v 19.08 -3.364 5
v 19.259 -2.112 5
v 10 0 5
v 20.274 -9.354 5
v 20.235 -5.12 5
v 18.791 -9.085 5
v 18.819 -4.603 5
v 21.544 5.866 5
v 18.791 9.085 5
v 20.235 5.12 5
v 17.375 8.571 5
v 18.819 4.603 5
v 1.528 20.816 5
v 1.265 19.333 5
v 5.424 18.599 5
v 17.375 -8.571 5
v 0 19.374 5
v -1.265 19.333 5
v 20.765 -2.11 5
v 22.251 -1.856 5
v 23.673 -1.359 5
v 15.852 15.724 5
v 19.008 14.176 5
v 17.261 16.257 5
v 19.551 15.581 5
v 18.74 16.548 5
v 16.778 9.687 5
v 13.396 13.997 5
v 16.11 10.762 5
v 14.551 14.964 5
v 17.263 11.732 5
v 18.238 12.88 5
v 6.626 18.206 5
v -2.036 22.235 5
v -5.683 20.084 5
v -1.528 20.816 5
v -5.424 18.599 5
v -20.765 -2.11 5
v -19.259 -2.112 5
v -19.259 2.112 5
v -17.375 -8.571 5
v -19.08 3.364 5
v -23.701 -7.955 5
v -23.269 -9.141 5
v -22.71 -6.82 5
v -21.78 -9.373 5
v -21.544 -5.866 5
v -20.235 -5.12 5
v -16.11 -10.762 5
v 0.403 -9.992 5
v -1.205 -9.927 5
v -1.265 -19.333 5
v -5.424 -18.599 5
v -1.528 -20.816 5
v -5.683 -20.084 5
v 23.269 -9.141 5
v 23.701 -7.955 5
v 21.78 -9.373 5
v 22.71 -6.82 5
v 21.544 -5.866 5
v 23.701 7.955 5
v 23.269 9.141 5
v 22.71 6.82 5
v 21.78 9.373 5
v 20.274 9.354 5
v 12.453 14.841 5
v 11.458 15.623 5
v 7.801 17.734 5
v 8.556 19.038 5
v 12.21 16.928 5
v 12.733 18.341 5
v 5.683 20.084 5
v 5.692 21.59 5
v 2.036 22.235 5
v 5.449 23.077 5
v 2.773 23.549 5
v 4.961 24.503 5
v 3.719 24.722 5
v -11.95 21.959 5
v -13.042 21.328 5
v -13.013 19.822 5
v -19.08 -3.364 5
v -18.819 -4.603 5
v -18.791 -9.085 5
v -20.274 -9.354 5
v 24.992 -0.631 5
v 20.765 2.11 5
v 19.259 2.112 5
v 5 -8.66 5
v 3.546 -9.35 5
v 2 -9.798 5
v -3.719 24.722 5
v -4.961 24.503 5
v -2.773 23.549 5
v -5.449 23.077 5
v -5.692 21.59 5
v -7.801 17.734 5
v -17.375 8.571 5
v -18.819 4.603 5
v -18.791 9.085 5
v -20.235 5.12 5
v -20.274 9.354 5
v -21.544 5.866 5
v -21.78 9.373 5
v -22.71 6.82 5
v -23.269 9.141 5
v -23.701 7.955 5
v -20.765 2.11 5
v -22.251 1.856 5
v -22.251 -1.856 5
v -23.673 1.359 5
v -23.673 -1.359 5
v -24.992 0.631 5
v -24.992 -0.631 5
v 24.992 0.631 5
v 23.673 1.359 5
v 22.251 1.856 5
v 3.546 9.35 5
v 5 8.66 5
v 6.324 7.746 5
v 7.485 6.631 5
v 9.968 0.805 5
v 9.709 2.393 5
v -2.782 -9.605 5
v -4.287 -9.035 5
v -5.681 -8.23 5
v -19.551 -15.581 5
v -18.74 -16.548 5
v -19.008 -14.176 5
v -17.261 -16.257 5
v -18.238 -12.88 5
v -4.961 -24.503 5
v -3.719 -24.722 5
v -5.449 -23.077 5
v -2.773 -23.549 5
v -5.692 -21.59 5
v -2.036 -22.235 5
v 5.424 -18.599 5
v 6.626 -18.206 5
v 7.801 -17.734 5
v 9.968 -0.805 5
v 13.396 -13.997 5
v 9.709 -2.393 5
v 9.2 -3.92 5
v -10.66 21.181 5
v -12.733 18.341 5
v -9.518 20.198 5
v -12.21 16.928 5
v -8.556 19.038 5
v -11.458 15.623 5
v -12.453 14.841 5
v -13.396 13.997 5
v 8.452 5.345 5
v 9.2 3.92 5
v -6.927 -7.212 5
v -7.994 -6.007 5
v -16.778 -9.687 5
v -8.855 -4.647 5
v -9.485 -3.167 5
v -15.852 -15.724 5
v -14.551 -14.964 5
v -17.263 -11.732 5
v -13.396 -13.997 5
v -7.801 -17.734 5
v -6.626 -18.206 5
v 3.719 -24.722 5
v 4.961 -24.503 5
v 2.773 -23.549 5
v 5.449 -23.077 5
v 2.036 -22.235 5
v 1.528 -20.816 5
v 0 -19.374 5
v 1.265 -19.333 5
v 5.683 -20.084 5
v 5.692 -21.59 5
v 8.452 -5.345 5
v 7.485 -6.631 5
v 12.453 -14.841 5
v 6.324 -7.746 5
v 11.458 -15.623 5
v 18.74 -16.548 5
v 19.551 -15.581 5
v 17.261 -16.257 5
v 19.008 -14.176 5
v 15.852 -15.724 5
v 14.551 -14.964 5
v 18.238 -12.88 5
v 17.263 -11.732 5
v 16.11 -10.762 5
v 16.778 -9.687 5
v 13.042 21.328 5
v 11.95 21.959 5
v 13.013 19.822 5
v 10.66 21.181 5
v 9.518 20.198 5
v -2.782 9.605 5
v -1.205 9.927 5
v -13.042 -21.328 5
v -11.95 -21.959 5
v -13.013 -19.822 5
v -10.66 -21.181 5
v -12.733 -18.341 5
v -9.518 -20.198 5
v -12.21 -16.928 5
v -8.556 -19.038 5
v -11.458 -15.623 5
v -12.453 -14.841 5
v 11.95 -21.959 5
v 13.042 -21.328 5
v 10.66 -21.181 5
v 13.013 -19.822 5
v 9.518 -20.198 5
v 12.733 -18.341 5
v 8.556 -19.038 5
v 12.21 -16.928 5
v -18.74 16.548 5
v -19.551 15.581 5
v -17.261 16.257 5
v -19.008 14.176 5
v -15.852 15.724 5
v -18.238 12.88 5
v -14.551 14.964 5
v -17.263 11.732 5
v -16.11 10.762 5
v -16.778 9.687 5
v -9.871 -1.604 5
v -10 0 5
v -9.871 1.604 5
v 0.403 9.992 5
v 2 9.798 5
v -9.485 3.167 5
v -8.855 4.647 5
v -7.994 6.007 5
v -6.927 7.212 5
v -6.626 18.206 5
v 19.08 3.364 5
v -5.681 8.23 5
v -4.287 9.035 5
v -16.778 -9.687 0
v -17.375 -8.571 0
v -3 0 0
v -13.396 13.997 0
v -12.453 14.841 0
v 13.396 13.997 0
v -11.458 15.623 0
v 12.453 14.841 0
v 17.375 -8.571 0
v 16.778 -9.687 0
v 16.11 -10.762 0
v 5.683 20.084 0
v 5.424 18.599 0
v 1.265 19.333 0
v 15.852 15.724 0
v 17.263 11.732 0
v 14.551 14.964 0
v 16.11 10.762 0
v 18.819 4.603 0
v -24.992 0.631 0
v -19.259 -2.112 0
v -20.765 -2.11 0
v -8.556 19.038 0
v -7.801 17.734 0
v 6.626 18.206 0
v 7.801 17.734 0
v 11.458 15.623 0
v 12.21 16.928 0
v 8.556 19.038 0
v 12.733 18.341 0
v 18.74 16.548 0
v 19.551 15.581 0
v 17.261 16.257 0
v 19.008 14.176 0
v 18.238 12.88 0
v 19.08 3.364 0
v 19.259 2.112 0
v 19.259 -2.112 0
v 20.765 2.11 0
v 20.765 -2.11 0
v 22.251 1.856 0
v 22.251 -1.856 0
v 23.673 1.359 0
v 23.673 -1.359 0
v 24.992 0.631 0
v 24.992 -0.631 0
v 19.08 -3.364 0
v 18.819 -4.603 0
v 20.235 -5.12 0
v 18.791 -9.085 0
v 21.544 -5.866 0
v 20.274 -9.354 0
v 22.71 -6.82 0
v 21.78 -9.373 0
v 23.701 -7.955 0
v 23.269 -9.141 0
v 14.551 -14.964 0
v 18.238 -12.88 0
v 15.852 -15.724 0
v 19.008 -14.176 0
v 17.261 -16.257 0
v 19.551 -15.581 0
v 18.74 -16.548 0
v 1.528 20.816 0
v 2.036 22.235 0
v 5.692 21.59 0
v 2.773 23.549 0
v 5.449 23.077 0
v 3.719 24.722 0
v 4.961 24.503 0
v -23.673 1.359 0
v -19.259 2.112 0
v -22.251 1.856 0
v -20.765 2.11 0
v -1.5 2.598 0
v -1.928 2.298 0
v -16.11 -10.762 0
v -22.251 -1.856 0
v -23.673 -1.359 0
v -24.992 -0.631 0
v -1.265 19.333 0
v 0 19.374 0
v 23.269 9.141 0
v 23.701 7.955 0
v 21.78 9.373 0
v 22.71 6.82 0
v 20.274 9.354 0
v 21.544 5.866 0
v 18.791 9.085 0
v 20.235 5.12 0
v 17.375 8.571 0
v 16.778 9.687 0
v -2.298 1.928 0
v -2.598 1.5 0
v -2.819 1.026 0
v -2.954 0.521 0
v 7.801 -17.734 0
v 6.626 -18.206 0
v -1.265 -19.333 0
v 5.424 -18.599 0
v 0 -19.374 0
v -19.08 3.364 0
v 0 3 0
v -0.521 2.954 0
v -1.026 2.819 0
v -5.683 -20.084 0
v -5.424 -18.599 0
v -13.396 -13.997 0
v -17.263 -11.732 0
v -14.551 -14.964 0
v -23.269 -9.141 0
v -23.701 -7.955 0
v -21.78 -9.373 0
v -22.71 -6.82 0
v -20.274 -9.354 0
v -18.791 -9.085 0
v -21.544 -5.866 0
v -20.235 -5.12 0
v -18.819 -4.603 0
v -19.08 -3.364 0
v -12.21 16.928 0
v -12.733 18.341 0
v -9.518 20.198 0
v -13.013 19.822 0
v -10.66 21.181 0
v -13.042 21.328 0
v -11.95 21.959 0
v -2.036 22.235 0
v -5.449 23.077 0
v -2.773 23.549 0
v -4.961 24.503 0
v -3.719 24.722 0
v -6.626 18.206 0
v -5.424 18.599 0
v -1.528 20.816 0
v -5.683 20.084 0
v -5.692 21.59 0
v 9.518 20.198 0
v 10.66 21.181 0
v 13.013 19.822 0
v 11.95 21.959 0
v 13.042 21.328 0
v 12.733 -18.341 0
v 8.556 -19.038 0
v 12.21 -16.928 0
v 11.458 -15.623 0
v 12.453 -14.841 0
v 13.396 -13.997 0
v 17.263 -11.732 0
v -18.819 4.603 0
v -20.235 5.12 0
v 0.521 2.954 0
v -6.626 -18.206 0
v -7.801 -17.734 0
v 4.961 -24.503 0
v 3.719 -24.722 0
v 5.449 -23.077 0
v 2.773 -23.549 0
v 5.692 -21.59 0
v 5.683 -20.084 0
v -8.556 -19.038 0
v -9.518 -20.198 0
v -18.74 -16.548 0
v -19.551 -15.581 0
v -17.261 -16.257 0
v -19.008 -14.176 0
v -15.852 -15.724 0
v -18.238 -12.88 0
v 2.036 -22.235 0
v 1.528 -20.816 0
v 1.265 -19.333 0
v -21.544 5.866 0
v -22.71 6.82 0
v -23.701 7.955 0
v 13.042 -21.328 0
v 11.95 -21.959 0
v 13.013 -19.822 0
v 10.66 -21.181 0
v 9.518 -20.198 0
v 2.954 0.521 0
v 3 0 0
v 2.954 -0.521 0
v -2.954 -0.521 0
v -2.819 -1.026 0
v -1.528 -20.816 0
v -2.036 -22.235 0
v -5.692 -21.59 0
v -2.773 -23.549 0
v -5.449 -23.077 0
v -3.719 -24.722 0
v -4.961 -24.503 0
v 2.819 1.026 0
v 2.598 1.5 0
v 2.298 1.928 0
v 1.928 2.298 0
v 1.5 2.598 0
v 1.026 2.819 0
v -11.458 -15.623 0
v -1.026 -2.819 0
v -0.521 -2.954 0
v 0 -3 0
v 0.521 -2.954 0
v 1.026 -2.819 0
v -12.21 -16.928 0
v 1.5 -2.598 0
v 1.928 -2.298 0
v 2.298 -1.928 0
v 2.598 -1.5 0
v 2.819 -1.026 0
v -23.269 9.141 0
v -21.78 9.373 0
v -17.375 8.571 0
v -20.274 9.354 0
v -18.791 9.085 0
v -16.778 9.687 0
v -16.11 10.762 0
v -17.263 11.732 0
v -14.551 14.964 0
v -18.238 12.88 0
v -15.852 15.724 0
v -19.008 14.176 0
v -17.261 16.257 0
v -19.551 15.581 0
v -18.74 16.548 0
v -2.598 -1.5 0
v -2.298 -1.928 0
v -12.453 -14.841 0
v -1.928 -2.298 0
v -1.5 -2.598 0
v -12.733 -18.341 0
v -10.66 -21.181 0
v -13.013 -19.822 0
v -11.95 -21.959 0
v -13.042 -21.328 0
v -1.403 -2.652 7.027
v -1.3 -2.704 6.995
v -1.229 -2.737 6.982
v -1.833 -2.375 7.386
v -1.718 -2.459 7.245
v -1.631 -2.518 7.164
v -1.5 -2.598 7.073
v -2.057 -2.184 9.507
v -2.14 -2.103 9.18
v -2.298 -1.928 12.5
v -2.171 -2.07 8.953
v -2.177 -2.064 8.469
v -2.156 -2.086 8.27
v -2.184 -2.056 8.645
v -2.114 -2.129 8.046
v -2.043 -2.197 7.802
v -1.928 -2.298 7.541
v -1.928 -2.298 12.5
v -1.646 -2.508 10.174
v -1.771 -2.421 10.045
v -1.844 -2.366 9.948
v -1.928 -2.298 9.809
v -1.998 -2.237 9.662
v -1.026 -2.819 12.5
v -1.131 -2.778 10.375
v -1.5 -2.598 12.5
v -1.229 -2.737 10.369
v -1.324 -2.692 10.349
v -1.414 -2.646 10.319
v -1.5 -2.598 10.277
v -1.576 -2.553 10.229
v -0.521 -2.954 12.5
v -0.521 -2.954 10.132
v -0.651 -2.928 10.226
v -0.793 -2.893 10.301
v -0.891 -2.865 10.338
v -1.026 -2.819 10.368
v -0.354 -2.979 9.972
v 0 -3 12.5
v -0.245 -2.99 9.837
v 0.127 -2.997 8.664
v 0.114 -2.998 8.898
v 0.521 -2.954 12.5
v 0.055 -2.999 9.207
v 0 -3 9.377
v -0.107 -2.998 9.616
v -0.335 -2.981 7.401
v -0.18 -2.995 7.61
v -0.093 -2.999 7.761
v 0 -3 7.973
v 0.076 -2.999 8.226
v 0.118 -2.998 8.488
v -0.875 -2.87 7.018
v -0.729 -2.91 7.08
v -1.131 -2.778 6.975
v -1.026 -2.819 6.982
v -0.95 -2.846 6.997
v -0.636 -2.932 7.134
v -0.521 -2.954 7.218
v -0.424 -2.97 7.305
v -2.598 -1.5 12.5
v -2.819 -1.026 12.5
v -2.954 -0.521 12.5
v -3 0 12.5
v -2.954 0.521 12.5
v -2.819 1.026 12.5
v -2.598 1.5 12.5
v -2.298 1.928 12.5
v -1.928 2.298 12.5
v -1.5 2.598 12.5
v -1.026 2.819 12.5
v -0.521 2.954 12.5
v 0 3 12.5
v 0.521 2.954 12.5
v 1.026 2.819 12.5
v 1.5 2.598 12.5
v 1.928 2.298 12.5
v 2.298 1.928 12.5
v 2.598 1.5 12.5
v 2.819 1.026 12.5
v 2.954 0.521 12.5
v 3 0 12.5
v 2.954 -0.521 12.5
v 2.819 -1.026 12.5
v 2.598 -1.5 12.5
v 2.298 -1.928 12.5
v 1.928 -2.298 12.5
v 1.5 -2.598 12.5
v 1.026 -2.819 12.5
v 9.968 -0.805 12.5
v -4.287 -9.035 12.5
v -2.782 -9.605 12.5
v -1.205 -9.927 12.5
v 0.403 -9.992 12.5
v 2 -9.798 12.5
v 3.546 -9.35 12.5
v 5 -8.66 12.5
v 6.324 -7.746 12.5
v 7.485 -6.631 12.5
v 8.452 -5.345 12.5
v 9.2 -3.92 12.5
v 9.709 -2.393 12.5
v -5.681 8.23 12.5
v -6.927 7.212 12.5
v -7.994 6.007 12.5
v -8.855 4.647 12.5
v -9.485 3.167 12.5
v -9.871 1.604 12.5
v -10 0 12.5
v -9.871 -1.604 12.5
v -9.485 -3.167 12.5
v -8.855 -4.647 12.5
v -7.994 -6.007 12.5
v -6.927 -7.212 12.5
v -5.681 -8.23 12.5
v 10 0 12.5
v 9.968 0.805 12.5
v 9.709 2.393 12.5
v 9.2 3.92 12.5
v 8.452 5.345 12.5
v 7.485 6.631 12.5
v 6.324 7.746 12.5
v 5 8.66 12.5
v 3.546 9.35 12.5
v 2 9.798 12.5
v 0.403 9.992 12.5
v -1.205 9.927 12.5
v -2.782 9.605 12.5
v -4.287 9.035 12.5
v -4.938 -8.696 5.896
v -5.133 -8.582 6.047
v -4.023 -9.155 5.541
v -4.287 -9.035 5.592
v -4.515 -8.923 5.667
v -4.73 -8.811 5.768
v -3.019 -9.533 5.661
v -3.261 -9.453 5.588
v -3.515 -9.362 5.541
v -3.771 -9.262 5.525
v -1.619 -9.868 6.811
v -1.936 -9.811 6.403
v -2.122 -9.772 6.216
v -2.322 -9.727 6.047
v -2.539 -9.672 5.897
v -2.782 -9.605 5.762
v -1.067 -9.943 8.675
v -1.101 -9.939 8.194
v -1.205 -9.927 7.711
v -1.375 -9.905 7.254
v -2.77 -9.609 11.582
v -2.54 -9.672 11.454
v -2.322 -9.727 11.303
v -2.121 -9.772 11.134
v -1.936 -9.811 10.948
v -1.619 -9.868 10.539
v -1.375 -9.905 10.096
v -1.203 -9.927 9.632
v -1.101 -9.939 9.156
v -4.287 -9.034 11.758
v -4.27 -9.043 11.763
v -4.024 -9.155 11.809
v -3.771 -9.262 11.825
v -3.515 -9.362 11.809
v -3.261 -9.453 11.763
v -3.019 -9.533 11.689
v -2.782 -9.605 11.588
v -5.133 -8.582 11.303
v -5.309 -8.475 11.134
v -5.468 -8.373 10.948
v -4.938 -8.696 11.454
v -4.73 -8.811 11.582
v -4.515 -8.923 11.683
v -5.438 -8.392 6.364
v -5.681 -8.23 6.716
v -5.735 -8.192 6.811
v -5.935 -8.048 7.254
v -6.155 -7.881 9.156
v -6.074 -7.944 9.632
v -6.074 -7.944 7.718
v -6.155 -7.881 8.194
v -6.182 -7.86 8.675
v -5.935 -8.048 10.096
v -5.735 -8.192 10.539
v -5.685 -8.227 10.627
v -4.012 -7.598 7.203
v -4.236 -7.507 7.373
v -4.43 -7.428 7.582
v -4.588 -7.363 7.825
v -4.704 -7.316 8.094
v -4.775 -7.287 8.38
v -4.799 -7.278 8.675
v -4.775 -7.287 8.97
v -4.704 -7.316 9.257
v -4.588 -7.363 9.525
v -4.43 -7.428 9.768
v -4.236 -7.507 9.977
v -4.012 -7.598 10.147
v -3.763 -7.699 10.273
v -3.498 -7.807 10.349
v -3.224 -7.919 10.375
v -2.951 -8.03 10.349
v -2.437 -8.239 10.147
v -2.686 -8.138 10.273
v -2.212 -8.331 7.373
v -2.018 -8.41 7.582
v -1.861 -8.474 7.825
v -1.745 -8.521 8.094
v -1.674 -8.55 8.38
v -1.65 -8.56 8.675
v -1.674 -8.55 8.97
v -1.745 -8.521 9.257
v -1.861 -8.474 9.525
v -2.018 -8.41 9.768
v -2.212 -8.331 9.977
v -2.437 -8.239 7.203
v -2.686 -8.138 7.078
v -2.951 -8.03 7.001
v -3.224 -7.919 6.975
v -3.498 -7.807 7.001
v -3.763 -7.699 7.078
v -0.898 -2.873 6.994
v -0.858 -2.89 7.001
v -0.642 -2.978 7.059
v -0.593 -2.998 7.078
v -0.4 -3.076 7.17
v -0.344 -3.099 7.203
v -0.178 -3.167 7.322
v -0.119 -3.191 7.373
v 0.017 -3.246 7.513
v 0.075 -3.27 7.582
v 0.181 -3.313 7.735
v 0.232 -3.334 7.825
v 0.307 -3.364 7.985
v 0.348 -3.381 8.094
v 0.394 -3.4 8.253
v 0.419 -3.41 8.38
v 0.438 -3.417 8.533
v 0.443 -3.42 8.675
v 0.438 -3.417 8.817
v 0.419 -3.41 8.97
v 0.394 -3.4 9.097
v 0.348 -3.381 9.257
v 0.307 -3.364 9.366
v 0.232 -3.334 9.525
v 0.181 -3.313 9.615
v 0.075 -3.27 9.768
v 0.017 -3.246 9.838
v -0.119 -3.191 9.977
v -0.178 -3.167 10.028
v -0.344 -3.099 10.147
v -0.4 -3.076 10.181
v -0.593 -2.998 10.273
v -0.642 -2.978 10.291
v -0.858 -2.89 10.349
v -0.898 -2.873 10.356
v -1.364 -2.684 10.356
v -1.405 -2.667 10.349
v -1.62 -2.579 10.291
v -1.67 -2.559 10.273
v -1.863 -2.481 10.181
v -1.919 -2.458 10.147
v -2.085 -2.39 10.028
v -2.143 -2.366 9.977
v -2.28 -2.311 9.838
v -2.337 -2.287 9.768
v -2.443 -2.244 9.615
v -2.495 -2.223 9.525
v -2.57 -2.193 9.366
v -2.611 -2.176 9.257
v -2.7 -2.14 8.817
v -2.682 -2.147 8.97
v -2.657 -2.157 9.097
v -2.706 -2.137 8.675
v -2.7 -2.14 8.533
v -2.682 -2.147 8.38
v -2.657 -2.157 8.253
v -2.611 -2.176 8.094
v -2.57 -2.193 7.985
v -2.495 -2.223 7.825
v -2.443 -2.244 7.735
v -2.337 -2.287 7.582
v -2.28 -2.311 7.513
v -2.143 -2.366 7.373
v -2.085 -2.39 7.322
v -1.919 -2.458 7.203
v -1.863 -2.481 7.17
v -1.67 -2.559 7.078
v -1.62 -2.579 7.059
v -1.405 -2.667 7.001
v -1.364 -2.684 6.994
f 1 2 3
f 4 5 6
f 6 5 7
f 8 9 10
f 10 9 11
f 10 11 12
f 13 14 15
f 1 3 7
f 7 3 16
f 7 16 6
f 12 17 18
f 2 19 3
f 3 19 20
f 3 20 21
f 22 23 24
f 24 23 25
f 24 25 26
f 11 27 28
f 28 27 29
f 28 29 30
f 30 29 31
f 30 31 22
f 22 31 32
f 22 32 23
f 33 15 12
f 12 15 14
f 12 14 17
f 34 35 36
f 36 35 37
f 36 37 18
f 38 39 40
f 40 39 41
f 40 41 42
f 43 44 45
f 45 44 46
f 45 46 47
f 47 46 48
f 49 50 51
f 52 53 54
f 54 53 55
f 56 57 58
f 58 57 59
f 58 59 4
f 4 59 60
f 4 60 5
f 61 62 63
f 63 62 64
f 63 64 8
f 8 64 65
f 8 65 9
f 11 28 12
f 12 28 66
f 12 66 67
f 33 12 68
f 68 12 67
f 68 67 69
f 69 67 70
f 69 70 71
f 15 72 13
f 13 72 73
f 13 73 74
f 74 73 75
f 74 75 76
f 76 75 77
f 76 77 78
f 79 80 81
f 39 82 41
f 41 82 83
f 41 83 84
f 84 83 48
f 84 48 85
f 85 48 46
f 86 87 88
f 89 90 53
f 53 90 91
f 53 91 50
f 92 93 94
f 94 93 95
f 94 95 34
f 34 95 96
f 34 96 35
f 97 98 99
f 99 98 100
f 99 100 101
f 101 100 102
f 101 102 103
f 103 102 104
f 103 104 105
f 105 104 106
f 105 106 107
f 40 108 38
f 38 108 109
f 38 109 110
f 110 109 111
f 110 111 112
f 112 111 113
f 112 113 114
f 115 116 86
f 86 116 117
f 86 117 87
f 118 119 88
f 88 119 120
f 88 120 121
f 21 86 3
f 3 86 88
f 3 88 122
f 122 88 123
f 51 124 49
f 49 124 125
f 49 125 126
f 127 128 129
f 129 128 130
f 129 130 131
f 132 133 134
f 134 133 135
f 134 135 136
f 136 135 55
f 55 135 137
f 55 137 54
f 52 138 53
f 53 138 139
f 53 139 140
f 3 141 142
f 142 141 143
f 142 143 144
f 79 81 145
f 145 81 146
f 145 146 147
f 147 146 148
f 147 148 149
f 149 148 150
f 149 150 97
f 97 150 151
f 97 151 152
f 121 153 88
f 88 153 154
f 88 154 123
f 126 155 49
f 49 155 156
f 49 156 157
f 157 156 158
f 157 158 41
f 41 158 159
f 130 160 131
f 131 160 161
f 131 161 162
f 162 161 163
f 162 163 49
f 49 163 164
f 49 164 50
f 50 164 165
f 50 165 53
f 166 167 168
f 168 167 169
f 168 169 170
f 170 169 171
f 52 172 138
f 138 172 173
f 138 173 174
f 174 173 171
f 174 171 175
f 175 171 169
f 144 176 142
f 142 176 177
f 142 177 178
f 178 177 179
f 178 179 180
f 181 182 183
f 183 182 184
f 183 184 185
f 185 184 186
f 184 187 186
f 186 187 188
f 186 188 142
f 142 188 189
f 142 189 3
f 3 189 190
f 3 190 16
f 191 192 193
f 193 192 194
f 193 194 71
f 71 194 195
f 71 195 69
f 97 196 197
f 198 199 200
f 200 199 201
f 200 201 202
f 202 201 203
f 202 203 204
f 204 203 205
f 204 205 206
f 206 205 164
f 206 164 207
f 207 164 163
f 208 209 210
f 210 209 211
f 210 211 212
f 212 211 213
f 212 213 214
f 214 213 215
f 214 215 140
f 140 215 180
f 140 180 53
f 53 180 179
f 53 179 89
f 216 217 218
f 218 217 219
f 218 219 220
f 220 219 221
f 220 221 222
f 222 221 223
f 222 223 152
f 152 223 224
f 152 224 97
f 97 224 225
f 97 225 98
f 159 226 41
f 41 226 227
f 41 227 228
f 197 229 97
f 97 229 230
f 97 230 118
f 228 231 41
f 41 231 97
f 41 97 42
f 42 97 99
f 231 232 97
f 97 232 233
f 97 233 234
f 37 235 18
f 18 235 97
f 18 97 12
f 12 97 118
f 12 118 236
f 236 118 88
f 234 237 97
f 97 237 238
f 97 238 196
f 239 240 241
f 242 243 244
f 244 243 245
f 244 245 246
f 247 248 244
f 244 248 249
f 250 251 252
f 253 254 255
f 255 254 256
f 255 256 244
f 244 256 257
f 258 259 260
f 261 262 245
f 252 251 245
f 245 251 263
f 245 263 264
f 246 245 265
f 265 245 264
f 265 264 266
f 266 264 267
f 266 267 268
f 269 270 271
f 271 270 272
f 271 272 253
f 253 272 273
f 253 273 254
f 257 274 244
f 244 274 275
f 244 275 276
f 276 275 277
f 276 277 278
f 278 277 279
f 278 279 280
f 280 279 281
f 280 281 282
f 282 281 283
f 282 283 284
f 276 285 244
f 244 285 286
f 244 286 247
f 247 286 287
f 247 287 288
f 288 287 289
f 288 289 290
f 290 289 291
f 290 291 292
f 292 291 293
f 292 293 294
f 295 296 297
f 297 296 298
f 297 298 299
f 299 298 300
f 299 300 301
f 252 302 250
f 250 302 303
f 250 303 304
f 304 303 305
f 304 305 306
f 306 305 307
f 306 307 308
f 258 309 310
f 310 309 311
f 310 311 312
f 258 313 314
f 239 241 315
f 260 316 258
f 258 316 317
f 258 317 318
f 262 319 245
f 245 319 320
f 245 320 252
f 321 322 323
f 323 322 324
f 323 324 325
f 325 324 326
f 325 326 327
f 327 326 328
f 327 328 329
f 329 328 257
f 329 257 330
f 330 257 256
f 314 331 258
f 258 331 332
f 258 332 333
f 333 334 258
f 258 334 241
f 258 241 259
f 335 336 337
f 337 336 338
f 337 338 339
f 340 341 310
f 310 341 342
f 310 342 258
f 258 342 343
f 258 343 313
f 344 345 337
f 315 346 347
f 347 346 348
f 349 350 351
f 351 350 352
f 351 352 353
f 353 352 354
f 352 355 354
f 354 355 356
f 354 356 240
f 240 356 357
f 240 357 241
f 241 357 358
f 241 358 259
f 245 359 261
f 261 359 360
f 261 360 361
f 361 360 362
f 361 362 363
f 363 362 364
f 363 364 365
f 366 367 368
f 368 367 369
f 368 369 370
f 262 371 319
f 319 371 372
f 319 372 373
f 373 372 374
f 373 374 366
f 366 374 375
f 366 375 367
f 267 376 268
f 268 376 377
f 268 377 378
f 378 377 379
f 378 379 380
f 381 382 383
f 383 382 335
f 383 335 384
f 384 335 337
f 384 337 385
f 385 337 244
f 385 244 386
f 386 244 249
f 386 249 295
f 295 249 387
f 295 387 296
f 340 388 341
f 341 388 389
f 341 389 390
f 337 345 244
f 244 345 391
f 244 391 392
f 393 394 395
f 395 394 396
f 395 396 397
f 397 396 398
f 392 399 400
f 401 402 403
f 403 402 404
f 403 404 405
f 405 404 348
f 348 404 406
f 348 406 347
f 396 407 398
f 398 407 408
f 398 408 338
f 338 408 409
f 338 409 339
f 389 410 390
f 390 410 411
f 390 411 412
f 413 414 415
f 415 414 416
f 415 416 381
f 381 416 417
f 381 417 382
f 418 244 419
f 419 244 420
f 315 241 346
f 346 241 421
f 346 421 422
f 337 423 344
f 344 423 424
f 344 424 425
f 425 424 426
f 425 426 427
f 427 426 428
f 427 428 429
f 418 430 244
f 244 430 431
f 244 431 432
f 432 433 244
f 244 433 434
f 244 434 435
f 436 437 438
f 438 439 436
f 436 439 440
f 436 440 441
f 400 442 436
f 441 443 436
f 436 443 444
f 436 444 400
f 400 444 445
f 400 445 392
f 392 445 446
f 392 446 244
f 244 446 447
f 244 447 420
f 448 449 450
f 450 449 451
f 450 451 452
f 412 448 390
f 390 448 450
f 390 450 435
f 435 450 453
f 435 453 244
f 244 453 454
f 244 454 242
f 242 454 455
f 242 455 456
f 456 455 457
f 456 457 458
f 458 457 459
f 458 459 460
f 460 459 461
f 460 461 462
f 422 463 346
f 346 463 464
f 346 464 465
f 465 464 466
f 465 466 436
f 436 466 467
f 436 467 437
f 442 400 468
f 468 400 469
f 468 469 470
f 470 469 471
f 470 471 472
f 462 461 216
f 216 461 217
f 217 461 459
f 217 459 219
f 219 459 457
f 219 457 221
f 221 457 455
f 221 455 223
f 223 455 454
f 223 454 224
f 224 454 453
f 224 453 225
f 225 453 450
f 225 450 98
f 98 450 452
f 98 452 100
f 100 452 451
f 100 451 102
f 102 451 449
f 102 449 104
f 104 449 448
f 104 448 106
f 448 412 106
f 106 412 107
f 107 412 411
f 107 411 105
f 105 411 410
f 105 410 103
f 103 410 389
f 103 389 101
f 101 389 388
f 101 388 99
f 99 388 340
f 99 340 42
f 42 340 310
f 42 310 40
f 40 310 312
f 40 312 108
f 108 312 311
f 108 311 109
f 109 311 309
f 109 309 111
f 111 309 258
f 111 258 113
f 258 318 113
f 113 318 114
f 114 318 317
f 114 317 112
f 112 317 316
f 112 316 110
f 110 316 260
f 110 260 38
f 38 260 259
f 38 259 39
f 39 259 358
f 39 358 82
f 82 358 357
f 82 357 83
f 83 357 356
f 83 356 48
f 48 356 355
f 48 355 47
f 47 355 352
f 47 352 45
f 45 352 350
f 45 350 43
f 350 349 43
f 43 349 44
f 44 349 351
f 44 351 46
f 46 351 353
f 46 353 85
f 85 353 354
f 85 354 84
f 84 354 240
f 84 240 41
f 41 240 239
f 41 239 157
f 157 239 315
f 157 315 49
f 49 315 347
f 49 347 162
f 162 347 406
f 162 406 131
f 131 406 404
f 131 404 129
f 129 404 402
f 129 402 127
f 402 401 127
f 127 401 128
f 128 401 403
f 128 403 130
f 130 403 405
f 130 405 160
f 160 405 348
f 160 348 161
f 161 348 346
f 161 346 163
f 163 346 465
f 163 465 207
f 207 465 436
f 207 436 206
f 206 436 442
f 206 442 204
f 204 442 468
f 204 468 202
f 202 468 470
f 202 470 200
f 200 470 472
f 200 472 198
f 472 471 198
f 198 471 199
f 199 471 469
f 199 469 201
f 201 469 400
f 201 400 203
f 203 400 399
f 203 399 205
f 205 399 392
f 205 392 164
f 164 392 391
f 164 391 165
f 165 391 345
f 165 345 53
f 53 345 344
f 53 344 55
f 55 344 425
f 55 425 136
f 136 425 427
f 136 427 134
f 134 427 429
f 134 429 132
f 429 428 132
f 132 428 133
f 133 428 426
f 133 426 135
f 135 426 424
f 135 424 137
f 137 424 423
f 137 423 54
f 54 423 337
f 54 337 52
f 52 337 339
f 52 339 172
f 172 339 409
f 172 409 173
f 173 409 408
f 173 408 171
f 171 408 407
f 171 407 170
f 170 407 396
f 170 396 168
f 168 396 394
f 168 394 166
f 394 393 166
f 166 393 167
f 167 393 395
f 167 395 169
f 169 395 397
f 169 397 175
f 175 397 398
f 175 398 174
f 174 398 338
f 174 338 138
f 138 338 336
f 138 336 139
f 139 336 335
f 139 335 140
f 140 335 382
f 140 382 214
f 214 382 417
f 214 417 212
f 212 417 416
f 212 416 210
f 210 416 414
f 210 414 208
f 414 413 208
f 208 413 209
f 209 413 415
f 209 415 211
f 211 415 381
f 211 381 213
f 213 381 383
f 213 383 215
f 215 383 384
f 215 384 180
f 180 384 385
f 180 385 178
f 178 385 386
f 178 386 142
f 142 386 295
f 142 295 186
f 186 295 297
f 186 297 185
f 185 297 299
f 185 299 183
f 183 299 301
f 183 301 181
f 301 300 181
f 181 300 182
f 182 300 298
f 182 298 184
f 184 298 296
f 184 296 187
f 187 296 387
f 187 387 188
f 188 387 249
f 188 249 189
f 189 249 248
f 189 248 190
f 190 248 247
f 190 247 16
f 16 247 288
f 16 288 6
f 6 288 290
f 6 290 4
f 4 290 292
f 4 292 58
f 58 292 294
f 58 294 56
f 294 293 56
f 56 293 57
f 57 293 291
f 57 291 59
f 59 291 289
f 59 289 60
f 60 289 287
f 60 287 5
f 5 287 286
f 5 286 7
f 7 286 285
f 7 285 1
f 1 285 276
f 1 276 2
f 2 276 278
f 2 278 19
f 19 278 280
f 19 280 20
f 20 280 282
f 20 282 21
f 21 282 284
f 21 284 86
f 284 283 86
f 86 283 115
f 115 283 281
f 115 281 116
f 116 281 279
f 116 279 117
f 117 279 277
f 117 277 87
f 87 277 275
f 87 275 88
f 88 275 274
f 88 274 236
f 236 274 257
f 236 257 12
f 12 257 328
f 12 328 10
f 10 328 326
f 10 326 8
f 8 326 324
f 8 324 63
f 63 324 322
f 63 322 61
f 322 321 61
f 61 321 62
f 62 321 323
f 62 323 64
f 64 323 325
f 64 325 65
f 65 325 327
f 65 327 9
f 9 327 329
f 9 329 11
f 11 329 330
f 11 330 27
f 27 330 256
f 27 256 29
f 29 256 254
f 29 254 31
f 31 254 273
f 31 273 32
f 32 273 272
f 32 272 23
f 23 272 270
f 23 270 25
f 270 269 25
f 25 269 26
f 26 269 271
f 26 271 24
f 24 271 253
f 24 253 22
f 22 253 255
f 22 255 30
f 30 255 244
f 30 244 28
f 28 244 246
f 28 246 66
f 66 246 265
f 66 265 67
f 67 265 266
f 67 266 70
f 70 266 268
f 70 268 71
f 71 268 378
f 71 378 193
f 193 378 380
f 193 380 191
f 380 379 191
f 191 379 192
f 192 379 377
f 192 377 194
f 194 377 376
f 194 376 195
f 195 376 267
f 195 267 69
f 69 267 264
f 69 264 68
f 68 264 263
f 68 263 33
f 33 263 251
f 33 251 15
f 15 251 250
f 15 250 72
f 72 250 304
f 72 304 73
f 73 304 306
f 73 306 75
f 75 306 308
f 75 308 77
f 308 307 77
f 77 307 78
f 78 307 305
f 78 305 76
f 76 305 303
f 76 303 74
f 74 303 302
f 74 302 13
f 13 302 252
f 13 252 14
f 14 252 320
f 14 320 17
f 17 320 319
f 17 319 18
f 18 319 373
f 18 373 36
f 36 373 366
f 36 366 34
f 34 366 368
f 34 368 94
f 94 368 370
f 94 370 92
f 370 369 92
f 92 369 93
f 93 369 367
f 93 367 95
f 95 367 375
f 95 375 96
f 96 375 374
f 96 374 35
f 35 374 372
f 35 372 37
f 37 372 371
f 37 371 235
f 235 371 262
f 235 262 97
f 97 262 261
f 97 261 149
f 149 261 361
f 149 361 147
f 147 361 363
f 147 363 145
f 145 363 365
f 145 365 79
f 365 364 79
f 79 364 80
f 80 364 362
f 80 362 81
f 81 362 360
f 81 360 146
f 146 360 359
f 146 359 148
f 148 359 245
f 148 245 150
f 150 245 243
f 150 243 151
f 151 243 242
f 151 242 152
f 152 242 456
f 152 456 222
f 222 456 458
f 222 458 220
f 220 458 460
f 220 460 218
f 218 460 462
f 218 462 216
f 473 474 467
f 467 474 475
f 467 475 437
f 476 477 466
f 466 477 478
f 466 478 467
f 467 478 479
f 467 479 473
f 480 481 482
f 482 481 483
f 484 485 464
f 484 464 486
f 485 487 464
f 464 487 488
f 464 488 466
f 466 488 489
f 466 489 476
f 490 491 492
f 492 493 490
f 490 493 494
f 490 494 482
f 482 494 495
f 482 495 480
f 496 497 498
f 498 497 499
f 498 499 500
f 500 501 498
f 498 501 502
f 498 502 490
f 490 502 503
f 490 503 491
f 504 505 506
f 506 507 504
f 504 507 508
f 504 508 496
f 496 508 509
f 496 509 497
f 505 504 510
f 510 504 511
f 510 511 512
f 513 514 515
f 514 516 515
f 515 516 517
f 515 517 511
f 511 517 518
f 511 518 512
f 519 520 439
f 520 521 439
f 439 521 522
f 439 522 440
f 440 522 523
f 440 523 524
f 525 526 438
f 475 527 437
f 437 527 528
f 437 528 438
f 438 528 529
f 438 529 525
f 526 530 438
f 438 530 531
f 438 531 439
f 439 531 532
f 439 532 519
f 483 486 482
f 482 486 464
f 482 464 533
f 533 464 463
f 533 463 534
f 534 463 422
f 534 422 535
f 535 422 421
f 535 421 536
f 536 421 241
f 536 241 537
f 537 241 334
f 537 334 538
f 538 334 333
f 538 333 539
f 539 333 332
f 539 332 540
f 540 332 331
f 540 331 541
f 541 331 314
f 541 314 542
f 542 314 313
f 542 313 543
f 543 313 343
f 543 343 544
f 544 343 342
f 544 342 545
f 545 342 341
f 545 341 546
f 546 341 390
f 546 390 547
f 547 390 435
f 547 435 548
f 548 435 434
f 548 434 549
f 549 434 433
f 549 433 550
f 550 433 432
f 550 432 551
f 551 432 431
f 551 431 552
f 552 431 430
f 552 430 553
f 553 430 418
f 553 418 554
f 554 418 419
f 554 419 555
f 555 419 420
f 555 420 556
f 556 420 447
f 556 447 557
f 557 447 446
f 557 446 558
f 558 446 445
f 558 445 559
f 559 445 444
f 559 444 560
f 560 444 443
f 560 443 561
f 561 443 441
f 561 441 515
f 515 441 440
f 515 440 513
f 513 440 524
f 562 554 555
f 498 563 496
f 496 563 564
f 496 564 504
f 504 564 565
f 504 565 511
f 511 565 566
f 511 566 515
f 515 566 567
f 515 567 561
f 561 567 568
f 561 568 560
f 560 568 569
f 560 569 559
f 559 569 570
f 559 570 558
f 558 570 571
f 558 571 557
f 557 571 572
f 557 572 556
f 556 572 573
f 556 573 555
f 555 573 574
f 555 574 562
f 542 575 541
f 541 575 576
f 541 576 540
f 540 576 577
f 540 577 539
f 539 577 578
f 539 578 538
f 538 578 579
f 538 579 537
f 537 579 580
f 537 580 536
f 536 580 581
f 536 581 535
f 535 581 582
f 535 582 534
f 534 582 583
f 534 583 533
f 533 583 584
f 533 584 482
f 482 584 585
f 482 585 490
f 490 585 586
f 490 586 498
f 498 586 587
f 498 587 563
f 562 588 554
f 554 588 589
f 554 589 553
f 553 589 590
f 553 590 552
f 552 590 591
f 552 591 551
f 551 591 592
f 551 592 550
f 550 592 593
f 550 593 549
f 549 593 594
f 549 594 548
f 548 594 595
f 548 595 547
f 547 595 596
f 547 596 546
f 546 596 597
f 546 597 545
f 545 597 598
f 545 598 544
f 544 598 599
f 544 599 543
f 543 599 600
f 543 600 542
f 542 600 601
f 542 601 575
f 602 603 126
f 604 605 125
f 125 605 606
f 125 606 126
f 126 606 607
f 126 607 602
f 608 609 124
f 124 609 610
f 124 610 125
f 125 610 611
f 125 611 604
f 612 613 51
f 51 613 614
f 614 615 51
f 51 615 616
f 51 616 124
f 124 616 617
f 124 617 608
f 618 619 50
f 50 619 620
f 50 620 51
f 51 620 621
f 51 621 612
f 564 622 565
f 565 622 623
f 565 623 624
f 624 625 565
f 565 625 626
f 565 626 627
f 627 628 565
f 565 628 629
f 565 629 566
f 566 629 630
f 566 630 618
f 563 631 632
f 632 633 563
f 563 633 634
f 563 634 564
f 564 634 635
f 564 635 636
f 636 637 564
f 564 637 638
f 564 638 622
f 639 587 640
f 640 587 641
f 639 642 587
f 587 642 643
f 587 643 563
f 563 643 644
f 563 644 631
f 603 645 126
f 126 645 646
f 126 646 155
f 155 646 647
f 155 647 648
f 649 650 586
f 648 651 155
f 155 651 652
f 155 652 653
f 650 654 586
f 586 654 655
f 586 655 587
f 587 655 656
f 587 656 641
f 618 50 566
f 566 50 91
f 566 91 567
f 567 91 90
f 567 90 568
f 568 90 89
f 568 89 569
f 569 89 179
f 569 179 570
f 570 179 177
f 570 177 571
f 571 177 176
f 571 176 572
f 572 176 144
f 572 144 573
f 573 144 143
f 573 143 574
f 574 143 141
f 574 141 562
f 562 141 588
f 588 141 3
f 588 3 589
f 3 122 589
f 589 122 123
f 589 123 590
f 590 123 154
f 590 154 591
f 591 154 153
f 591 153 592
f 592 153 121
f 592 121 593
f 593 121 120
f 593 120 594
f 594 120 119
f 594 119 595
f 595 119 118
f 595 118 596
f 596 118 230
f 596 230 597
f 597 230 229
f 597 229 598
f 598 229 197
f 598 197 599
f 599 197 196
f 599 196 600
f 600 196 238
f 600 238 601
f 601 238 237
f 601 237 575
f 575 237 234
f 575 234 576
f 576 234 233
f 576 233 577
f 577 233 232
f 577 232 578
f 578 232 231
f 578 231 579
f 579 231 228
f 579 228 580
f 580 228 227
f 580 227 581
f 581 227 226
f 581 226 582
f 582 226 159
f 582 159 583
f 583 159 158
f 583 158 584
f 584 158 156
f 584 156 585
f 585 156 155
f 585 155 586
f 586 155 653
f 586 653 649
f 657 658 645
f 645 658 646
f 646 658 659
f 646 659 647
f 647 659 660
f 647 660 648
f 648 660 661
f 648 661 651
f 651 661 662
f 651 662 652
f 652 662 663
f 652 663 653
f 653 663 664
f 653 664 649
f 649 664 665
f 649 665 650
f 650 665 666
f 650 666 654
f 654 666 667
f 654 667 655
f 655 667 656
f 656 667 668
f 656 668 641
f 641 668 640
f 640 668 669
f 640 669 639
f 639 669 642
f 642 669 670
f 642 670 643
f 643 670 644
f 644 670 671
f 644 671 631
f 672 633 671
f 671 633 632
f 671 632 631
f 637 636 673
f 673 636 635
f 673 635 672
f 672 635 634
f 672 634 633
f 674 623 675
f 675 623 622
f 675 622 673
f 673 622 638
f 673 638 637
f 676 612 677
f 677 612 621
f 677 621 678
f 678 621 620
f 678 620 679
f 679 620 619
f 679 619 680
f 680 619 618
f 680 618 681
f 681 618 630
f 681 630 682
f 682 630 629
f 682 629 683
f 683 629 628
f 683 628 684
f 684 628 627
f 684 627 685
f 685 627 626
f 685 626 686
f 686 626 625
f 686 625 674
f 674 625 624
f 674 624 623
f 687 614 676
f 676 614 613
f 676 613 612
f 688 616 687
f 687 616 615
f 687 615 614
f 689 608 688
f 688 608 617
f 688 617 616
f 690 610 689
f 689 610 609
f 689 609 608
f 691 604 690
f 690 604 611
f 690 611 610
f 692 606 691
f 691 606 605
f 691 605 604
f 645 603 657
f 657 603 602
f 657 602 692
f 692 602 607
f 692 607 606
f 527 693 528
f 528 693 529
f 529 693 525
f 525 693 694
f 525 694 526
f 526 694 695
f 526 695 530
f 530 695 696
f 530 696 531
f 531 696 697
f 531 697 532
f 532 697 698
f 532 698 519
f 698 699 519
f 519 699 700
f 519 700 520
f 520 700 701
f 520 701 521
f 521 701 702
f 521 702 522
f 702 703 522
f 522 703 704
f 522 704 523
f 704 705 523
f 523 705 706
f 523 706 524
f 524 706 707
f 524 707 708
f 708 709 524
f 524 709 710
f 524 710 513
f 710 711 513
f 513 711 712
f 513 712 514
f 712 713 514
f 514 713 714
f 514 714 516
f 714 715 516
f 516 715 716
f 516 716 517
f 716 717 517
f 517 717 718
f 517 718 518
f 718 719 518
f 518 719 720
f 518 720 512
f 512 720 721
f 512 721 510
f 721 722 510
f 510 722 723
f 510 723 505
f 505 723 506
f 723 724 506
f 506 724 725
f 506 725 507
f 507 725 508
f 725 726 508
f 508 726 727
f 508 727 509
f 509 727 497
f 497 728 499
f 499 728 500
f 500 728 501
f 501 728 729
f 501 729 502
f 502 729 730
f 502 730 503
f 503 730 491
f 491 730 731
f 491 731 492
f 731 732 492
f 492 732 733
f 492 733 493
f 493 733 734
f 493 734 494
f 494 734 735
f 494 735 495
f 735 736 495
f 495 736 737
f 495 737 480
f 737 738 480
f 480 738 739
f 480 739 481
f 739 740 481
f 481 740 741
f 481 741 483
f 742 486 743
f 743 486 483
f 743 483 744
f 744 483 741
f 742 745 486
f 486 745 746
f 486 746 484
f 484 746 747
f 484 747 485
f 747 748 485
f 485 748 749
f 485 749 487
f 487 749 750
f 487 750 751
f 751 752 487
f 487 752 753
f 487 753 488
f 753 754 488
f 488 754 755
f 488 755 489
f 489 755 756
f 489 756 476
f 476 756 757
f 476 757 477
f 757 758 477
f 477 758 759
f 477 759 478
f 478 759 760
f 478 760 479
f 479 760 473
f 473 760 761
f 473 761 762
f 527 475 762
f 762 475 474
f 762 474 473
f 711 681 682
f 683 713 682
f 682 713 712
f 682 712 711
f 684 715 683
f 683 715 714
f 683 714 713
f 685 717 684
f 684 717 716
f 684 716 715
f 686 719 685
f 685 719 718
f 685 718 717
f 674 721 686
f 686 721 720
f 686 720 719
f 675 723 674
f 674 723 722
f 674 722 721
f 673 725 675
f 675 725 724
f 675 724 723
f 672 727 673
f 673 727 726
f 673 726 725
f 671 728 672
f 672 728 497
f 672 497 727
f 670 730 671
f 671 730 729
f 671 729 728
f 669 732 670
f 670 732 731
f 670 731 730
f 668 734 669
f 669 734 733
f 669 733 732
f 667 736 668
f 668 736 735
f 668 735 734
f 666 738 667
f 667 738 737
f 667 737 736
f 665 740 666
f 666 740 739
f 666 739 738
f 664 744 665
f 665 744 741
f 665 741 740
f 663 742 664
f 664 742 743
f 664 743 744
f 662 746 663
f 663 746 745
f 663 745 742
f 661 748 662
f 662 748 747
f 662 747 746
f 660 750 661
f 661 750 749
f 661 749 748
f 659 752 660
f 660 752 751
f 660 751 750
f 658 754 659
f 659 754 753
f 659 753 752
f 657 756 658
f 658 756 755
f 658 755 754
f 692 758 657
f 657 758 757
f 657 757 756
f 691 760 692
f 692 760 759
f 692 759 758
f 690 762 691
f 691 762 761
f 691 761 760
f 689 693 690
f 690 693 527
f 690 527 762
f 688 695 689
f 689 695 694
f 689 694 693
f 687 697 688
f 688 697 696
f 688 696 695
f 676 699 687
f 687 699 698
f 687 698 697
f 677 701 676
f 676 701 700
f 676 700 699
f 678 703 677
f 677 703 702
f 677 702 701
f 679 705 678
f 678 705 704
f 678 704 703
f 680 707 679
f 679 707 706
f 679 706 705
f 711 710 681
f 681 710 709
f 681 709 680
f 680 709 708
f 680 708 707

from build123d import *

# Parameters (mm, degrees)
SKETCH1_R           = 3
BOSS_EXTRUDE2_DEPTH = 5
SKETCH2_R           = 10
SKETCH2_R_2         = 3
BOSS_EXTRUDE3_DEPTH = 7.5


# Read off the part's stored shape, not the designer's step: CSK for M3 Flat Head Machine Screw1
with BuildPart() as part:
    # Sketch1 → Boss-Extrude2 (new body)
    with BuildSketch(Plane.XY):
        with BuildLine():
            ThreePointArc((-19.550519413, 15.581309017), (-18.238129642, 12.880402273), (-16.110253623, 10.761580005))
            ThreePointArc((-16.110253623, 10.761580005), (-16.778376173, 9.687), (-17.374928481, 8.571098896))
            ThreePointArc((-17.374928481, 8.571098896), (-20.2738204, 9.354482451), (-23.269069139, 9.14059196))
            ThreePointArc((-23.269069139, 9.14059196), (-23.49231552, 8.550503583), (-23.700600368, 7.954969654))
            ThreePointArc((-23.700600368, 7.954969654), (-21.543592873, 5.865811255), (-18.819363584, 4.602546066))
            ThreePointArc((-18.819363584, 4.602546066), (-19.079665407, 3.364259794), (-19.258580553, 2.111622855))
            ThreePointArc((-19.258580553, 2.111622855), (-22.250580854, 1.856283171), (-24.992039135, 0.630856452))
            ThreePointArc((-24.992039135, 0.630856452), (-25, 0), (-24.992039135, -0.630856452))
            ThreePointArc((-24.992039135, -0.630856452), (-22.250580854, -1.856283171), (-19.258580553, -2.111622855))
            ThreePointArc((-19.258580553, -2.111622855), (-19.079665407, -3.364259794), (-18.819363584, -4.602546066))
            ThreePointArc((-18.819363584, -4.602546066), (-21.543592873, -5.865811255), (-23.700600368, -7.954969654))
            ThreePointArc((-23.700600368, -7.954969654), (-23.49231552, -8.550503583), (-23.269069139, -9.14059196))
            ThreePointArc((-23.269069139, -9.14059196), (-20.2738204, -9.354482451), (-17.374928481, -8.571098896))
            ThreePointArc((-17.374928481, -8.571098896), (-16.778376173, -9.687), (-16.110253623, -10.761580005))
            ThreePointArc((-16.110253623, -10.761580005), (-18.238129642, -12.880402273), (-19.550519413, -15.581309017))
            ThreePointArc((-19.550519413, -15.581309017), (-19.151111078, -16.069690242), (-18.739505991, -16.547837177))
            ThreePointArc((-18.739505991, -16.547837177), (-15.851737997, -15.724393089), (-13.395603607, -13.996773914))
            ThreePointArc((-13.395603607, -13.996773914), (-12.45336715, -14.841345041), (-11.458009312, -15.622608572))
            ThreePointArc((-11.458009312, -15.622608572), (-12.73287881, -18.341426683), (-13.042357282, -21.328312557))
            ThreePointArc((-13.042357282, -21.328312557), (-12.5, -21.650635095), (-11.949681854, -21.95916901))
            ThreePointArc((-11.949681854, -21.95916901), (-9.517702044, -20.197709854), (-7.800571241, -17.734231427))
            ThreePointArc((-7.800571241, -17.734231427), (-6.626298257, -18.205604835), (-5.423759977, -18.59931998))
            ThreePointArc((-5.423759977, -18.59931998), (-5.691854876, -21.590204344), (-4.961094377, -24.502806831))
            ThreePointArc((-4.961094377, -24.502806831), (-4.341204442, -24.620193825), (-3.718549727, -24.721900977))
            ThreePointArc((-3.718549727, -24.721900977), (-2.035690758, -22.234884724), (-1.264674858, -19.332678901))
            ThreePointArc((-1.264674858, -19.332678901), (0, -19.374), (1.264674858, -19.332678901))
            ThreePointArc((1.264674858, -19.332678901), (2.035690758, -22.234884724), (3.718549727, -24.721900977))
            ThreePointArc((3.718549727, -24.721900977), (4.341204442, -24.620193825), (4.961094377, -24.502806831))
            ThreePointArc((4.961094377, -24.502806831), (5.691854876, -21.590204344), (5.423759977, -18.59931998))
            ThreePointArc((5.423759977, -18.59931998), (6.626298257, -18.205604835), (7.800571241, -17.734231427))
            ThreePointArc((7.800571241, -17.734231427), (9.517702044, -20.197709854), (11.949681854, -21.95916901))
            ThreePointArc((11.949681854, -21.95916901), (12.5, -21.650635095), (13.042357282, -21.328312557))
            ThreePointArc((13.042357282, -21.328312557), (12.73287881, -18.341426683), (11.458009312, -15.622608572))
            ThreePointArc((11.458009312, -15.622608572), (12.45336715, -14.841345041), (13.395603607, -13.996773914))
            ThreePointArc((13.395603607, -13.996773914), (15.851737997, -15.724393089), (18.739505991, -16.547837177))
            ThreePointArc((18.739505991, -16.547837177), (19.151111078, -16.069690242), (19.550519413, -15.581309017))
            ThreePointArc((19.550519413, -15.581309017), (18.238129642, -12.880402273), (16.110253623, -10.761580005))
            ThreePointArc((16.110253623, -10.761580005), (16.778376173, -9.687), (17.374928481, -8.571098896))
            ThreePointArc((17.374928481, -8.571098896), (20.2738204, -9.354482451), (23.269069139, -9.14059196))
            ThreePointArc((23.269069139, -9.14059196), (23.49231552, -8.550503583), (23.700600368, -7.954969654))
            ThreePointArc((23.700600368, -7.954969654), (21.543592873, -5.865811255), (18.819363584, -4.602546066))
            ThreePointArc((18.819363584, -4.602546066), (19.079665407, -3.364259794), (19.258580553, -2.111622855))
            ThreePointArc((19.258580553, -2.111622855), (22.250580854, -1.856283171), (24.992039135, -0.630856452))
            ThreePointArc((24.992039135, -0.630856452), (25, 0), (24.992039135, 0.630856452))
            ThreePointArc((24.992039135, 0.630856452), (22.250580854, 1.856283171), (19.258580553, 2.111622855))
            ThreePointArc((19.258580553, 2.111622855), (19.079665407, 3.364259794), (18.819363584, 4.602546066))
            ThreePointArc((18.819363584, 4.602546066), (21.543592873, 5.865811255), (23.700600368, 7.954969654))
            ThreePointArc((23.700600368, 7.954969654), (23.49231552, 8.550503583), (23.269069139, 9.14059196))
            ThreePointArc((23.269069139, 9.14059196), (20.2738204, 9.354482451), (17.374928481, 8.571098896))
            ThreePointArc((17.374928481, 8.571098896), (16.778376173, 9.687), (16.110253623, 10.761580005))
            ThreePointArc((16.110253623, 10.761580005), (18.238129642, 12.880402273), (19.550519413, 15.581309017))
            ThreePointArc((19.550519413, 15.581309017), (19.151111078, 16.069690242), (18.739505991, 16.547837177))
            ThreePointArc((18.739505991, 16.547837177), (15.851737997, 15.724393089), (13.395603607, 13.996773914))
            ThreePointArc((13.395603607, 13.996773914), (12.45336715, 14.841345041), (11.458009312, 15.622608572))
            ThreePointArc((11.458009312, 15.622608572), (12.73287881, 18.341426683), (13.042357282, 21.328312557))
            ThreePointArc((13.042357282, 21.328312557), (12.5, 21.650635095), (11.949681854, 21.95916901))
            ThreePointArc((11.949681854, 21.95916901), (9.517702044, 20.197709854), (7.800571241, 17.734231427))
            ThreePointArc((7.800571241, 17.734231427), (6.626298257, 18.205604835), (5.423759977, 18.59931998))
            ThreePointArc((5.423759977, 18.59931998), (5.691854876, 21.590204344), (4.961094377, 24.502806831))
            ThreePointArc((4.961094377, 24.502806831), (4.341204442, 24.620193825), (3.718549727, 24.721900977))
            ThreePointArc((3.718549727, 24.721900977), (2.035690758, 22.234884724), (1.264674858, 19.332678901))
            ThreePointArc((1.264674858, 19.332678901), (0, 19.374), (-1.264674858, 19.332678901))
            ThreePointArc((-1.264674858, 19.332678901), (-2.035690758, 22.234884724), (-3.718549727, 24.721900977))
            ThreePointArc((-3.718549727, 24.721900977), (-4.341204442, 24.620193825), (-4.961094377, 24.502806831))
            ThreePointArc((-4.961094377, 24.502806831), (-5.691854876, 21.590204344), (-5.423759977, 18.59931998))
            ThreePointArc((-5.423759977, 18.59931998), (-6.626298257, 18.205604835), (-7.800571241, 17.734231427))
            ThreePointArc((-7.800571241, 17.734231427), (-9.517702044, 20.197709854), (-11.949681854, 21.95916901))
            ThreePointArc((-11.949681854, 21.95916901), (-12.5, 21.650635095), (-13.042357282, 21.328312557))
            ThreePointArc((-13.042357282, 21.328312557), (-12.73287881, 18.341426683), (-11.458009312, 15.622608572))
            ThreePointArc((-11.458009312, 15.622608572), (-12.45336715, 14.841345041), (-13.395603607, 13.996773914))
            ThreePointArc((-13.395603607, 13.996773914), (-15.851737997, 15.724393089), (-18.739505991, 16.547837177))
            ThreePointArc((-18.739505991, 16.547837177), (-19.151111078, 16.069690242), (-19.550519413, 15.581309017))
        make_face()
        Circle(SKETCH1_R, mode=Mode.SUBTRACT)
    extrude(amount=BOSS_EXTRUDE2_DEPTH)

    # Sketch2 → Boss-Extrude3 (add)
    with BuildSketch(Plane.XY.offset(5)):
        Circle(SKETCH2_R)
        Circle(SKETCH2_R_2, mode=Mode.SUBTRACT)
    extrude(amount=BOSS_EXTRUDE3_DEPTH)

    # CSK for M3 Flat Head Machine Screw1 outl → CSK for M3 Flat Head Machine Screw1 (revolve, cut)
    with BuildSketch(Plane(origin=(0, 0, 8.675124241), x_dir=(0.9261648448832729, -0.37711892037173506, 0), z_dir=(0, 0, 1))):
        Polygon((3.150067458, -10.000067458), (1.7, -8.55), (1.7, -3), (1.247536555, -2.728132535), (0, -2.728132535), (0, -10.000067458), align=None)
    revolve(axis=Axis((0, 0, 8.675124241), (0.37711892037173506, 0.9261648448832729, 0)), mode=Mode.SUBTRACT)


solid = part.part
